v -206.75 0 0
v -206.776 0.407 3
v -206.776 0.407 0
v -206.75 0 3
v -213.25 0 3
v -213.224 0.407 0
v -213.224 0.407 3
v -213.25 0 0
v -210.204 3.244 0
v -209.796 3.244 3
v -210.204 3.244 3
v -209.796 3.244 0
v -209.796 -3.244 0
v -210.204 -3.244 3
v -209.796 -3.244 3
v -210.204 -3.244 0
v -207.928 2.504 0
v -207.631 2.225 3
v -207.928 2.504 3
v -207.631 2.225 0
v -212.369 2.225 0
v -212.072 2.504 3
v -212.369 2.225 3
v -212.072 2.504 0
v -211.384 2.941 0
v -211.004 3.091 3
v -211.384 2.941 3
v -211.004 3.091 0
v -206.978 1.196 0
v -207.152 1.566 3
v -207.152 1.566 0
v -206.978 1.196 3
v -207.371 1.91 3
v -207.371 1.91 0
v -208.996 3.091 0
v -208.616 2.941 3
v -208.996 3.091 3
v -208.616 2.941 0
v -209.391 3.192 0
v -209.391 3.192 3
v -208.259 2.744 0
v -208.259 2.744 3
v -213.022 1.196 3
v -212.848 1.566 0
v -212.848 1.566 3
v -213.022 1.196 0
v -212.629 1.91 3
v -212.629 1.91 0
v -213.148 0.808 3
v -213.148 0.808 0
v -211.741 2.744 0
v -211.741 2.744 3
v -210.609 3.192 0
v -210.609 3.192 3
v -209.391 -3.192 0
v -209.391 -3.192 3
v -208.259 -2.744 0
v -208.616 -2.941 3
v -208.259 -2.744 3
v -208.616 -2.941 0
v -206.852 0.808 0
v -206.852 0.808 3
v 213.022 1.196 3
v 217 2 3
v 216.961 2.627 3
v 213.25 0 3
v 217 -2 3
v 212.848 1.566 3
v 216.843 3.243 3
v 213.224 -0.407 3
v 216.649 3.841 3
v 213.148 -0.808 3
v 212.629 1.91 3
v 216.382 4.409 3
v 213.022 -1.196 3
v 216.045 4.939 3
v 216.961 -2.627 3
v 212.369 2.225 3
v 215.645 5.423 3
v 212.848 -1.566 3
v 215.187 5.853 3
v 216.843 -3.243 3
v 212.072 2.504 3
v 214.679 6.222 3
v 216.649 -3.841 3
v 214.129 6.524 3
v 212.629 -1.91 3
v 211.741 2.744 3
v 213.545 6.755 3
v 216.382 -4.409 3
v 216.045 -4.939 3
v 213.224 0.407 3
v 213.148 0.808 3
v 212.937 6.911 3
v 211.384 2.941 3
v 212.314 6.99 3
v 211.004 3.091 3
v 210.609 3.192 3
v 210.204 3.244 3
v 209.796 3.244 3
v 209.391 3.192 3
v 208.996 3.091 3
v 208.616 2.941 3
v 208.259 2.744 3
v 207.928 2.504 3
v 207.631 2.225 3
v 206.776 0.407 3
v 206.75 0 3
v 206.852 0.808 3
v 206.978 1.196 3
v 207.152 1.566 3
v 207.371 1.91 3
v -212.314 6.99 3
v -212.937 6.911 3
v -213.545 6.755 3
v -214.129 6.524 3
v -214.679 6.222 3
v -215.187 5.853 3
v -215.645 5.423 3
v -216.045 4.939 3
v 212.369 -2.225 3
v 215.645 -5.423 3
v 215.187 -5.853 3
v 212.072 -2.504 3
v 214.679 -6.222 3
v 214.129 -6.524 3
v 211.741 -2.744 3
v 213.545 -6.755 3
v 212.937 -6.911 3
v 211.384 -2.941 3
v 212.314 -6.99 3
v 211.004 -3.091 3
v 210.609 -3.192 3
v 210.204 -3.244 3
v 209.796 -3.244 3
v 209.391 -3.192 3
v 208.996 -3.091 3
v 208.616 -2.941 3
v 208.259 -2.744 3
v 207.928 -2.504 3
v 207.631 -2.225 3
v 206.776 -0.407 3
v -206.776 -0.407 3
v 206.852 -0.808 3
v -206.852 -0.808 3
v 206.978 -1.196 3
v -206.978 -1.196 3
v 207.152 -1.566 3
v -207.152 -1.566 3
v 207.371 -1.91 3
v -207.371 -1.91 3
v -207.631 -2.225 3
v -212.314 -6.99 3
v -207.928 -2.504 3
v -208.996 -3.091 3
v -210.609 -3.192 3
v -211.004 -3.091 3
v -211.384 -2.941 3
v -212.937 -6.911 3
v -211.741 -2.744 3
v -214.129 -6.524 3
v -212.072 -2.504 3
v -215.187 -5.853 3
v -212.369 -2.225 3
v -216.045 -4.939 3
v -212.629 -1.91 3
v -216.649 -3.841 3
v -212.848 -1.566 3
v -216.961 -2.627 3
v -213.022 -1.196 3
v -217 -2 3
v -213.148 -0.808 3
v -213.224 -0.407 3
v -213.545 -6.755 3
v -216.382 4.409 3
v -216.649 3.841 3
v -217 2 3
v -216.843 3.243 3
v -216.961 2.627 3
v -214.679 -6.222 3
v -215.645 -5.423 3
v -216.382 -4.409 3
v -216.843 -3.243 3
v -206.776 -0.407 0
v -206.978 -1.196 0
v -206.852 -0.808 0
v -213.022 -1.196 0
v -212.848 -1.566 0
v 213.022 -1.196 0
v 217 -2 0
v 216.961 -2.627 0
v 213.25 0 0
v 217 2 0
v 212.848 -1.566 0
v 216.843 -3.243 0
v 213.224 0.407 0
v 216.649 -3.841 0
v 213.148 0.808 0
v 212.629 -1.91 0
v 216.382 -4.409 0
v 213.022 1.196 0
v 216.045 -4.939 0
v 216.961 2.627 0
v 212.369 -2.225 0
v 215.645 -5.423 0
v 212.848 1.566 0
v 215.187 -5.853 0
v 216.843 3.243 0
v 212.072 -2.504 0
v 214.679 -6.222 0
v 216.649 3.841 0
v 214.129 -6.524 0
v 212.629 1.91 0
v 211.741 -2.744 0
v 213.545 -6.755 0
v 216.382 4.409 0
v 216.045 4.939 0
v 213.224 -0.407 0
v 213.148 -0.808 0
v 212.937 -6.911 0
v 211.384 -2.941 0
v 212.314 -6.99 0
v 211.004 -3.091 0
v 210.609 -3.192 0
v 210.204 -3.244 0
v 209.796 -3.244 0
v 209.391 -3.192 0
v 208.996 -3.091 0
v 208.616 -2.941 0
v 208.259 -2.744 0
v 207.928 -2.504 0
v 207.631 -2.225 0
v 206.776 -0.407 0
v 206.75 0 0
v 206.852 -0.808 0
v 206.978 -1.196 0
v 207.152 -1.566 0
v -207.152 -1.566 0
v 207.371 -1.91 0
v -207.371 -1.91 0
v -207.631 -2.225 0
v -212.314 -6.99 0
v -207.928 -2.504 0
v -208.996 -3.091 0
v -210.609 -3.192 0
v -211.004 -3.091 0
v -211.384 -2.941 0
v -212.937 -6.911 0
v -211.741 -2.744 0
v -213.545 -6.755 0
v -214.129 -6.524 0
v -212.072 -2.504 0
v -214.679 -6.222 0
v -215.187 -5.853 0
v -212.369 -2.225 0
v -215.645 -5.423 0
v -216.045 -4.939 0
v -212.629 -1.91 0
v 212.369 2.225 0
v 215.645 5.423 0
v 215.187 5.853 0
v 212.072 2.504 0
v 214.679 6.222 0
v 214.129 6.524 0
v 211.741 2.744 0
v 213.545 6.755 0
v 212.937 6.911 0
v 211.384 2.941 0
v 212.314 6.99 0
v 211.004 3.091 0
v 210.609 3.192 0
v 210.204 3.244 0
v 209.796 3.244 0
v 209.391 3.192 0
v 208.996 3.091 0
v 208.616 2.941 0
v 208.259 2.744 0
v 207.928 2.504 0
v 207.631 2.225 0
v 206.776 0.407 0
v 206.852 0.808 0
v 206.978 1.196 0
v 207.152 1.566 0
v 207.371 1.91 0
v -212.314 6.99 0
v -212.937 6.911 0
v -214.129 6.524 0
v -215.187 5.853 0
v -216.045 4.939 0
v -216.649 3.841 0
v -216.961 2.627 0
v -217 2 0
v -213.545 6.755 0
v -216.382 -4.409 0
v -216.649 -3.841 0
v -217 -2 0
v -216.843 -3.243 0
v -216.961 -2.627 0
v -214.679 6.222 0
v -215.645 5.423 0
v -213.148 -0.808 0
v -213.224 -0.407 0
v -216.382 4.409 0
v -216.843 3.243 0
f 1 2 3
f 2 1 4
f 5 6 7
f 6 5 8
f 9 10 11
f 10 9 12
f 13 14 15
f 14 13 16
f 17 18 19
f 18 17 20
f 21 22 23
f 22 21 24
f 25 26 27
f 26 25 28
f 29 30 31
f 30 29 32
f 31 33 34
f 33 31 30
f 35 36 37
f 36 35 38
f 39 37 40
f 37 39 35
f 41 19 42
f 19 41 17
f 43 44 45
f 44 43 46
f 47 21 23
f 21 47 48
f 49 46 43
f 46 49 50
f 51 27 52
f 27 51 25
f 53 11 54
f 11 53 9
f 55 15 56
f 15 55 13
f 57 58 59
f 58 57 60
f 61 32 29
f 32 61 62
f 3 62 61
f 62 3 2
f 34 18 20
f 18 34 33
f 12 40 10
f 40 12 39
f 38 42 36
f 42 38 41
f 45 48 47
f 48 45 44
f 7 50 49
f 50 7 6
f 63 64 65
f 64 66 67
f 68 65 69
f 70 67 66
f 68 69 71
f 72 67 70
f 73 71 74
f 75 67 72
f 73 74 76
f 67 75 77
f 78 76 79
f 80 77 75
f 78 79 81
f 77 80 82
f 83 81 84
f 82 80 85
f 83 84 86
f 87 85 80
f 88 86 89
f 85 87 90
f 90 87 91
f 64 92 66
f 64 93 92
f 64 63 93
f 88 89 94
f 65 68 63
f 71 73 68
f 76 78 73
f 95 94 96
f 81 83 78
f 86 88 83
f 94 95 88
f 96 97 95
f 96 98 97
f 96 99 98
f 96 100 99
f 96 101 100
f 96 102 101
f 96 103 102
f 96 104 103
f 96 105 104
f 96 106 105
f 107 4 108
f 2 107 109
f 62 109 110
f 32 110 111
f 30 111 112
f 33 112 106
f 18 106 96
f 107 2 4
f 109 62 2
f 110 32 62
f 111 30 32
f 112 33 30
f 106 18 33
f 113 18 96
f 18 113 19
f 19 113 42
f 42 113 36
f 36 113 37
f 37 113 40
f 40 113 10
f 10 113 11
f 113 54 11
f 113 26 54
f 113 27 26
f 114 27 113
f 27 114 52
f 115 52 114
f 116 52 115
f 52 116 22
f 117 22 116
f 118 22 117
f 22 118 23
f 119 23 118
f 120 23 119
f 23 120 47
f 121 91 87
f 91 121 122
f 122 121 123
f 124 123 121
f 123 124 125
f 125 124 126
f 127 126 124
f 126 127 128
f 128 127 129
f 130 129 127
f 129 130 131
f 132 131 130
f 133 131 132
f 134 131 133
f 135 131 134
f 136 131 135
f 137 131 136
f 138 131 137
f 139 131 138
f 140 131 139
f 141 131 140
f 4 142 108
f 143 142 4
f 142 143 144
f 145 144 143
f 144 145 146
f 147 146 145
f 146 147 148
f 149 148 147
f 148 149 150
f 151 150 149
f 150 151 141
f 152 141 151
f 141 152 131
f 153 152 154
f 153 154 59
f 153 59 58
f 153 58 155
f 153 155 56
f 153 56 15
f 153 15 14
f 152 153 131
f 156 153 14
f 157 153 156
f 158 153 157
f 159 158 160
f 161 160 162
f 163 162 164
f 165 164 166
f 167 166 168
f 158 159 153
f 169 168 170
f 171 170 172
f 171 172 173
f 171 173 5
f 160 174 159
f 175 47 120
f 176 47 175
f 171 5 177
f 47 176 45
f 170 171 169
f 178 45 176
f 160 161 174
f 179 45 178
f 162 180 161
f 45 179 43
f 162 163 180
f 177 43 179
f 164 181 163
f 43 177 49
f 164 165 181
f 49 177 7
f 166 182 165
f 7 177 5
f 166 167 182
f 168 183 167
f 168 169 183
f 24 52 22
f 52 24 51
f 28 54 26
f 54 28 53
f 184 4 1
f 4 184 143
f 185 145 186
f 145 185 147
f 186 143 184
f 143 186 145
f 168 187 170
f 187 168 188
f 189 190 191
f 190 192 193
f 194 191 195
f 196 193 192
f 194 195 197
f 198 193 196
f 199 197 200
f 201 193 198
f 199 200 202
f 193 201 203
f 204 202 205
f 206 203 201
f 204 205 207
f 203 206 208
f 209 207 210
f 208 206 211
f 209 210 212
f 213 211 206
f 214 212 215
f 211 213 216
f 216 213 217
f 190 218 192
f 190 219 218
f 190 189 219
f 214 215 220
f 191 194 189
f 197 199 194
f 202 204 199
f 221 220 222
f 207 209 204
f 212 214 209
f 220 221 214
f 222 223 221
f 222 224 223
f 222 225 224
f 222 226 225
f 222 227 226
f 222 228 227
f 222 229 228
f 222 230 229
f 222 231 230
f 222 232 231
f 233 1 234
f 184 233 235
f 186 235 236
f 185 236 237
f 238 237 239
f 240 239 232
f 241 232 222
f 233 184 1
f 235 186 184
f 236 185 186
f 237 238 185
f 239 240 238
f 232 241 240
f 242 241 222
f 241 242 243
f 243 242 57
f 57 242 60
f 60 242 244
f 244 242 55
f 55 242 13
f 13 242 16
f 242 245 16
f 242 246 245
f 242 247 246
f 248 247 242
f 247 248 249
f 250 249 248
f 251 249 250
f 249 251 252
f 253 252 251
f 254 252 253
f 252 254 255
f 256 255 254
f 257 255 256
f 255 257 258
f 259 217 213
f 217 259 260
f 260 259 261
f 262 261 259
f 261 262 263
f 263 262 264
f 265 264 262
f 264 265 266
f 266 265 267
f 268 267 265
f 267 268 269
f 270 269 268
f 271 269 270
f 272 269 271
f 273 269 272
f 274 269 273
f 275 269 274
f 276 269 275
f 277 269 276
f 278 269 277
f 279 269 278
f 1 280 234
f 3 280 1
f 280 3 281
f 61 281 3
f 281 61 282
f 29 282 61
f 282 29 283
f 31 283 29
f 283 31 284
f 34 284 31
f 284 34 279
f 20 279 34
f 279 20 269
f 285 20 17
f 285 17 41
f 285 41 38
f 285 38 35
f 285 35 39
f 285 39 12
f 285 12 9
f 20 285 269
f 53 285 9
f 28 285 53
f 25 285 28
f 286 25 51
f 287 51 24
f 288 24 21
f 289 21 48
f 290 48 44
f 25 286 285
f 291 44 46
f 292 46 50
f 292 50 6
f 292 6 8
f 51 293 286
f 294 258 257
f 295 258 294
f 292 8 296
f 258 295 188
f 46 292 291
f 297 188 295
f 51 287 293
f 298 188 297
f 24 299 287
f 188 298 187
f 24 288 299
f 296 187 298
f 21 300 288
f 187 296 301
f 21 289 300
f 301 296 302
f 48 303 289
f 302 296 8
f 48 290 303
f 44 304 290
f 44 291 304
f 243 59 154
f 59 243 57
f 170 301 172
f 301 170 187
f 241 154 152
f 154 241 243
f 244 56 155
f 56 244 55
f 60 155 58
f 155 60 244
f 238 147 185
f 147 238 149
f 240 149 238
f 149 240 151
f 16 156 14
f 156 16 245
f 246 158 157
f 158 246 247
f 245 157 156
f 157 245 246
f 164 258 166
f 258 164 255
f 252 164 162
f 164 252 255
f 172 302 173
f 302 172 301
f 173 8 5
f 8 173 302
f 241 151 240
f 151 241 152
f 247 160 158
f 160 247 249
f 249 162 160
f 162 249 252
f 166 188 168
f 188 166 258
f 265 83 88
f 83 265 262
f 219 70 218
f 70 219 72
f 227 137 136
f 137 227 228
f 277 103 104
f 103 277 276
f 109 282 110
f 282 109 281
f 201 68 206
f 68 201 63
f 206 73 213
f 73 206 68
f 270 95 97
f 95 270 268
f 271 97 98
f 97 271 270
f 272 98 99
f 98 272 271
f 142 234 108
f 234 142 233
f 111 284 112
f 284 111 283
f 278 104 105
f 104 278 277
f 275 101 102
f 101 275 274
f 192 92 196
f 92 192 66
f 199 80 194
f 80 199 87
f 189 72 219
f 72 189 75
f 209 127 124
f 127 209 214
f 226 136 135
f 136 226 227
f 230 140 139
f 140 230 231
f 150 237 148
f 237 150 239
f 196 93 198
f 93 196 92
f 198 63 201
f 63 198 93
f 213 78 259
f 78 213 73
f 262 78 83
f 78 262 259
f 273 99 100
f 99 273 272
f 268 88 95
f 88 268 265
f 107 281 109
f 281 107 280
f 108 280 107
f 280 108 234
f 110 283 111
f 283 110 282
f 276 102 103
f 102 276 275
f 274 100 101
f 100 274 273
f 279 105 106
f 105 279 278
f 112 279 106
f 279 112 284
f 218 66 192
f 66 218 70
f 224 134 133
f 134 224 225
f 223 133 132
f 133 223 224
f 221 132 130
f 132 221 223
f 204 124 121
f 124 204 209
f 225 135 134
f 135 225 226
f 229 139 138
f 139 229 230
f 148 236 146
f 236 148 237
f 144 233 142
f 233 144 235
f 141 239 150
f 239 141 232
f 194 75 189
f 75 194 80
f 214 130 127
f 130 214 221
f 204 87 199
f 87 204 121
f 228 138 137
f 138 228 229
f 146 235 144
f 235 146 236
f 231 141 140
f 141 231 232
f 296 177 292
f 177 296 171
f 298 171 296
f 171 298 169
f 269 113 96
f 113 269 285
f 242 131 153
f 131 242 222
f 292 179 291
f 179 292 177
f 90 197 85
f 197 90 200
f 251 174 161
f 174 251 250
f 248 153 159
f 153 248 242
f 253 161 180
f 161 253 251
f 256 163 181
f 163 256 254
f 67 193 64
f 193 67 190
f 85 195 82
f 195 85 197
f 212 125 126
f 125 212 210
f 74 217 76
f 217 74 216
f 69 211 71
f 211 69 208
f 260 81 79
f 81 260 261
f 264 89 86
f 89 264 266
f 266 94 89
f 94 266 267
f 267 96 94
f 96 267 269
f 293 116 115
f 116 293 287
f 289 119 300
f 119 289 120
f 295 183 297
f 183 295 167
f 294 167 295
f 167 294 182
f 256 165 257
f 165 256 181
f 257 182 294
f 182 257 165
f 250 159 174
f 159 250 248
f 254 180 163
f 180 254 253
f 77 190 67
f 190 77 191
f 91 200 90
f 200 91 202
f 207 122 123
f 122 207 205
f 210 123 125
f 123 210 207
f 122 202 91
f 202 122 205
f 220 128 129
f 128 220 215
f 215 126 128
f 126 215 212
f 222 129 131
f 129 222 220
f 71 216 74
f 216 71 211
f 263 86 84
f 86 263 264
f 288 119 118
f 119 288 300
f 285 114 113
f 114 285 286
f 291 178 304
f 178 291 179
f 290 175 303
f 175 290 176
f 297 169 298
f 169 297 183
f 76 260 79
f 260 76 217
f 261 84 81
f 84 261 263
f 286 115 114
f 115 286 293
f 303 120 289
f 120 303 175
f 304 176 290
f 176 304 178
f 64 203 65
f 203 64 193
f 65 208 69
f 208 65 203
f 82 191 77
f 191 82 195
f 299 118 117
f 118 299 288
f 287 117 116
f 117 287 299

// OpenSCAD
$fn = 50;


difference() {
	union() {
		hull() {
			translate(v = [-212.0000000000, 2.0000000000, 0]) {
				cylinder(h = 3, r = 5);
			}
			translate(v = [212.0000000000, 2.0000000000, 0]) {
				cylinder(h = 3, r = 5);
			}
			translate(v = [-212.0000000000, -2.0000000000, 0]) {
				cylinder(h = 3, r = 5);
			}
			translate(v = [212.0000000000, -2.0000000000, 0]) {
				cylinder(h = 3, r = 5);
			}
		}
	}
	union() {
		translate(v = [-210.0000000000, 0.0000000000, -100.0000000000]) {
			cylinder(h = 200, r = 3.2500000000);
		}
		translate(v = [-210.0000000000, 0.0000000000, -100.0000000000]) {
			cylinder(h = 200, r = 3.2500000000);
		}
		translate(v = [210.0000000000, 0.0000000000, -100.0000000000]) {
			cylinder(h = 200, r = 3.2500000000);
		}
		translate(v = [210.0000000000, 0.0000000000, -100.0000000000]) {
			cylinder(h = 200, r = 3.2500000000);
		}
	}
}
